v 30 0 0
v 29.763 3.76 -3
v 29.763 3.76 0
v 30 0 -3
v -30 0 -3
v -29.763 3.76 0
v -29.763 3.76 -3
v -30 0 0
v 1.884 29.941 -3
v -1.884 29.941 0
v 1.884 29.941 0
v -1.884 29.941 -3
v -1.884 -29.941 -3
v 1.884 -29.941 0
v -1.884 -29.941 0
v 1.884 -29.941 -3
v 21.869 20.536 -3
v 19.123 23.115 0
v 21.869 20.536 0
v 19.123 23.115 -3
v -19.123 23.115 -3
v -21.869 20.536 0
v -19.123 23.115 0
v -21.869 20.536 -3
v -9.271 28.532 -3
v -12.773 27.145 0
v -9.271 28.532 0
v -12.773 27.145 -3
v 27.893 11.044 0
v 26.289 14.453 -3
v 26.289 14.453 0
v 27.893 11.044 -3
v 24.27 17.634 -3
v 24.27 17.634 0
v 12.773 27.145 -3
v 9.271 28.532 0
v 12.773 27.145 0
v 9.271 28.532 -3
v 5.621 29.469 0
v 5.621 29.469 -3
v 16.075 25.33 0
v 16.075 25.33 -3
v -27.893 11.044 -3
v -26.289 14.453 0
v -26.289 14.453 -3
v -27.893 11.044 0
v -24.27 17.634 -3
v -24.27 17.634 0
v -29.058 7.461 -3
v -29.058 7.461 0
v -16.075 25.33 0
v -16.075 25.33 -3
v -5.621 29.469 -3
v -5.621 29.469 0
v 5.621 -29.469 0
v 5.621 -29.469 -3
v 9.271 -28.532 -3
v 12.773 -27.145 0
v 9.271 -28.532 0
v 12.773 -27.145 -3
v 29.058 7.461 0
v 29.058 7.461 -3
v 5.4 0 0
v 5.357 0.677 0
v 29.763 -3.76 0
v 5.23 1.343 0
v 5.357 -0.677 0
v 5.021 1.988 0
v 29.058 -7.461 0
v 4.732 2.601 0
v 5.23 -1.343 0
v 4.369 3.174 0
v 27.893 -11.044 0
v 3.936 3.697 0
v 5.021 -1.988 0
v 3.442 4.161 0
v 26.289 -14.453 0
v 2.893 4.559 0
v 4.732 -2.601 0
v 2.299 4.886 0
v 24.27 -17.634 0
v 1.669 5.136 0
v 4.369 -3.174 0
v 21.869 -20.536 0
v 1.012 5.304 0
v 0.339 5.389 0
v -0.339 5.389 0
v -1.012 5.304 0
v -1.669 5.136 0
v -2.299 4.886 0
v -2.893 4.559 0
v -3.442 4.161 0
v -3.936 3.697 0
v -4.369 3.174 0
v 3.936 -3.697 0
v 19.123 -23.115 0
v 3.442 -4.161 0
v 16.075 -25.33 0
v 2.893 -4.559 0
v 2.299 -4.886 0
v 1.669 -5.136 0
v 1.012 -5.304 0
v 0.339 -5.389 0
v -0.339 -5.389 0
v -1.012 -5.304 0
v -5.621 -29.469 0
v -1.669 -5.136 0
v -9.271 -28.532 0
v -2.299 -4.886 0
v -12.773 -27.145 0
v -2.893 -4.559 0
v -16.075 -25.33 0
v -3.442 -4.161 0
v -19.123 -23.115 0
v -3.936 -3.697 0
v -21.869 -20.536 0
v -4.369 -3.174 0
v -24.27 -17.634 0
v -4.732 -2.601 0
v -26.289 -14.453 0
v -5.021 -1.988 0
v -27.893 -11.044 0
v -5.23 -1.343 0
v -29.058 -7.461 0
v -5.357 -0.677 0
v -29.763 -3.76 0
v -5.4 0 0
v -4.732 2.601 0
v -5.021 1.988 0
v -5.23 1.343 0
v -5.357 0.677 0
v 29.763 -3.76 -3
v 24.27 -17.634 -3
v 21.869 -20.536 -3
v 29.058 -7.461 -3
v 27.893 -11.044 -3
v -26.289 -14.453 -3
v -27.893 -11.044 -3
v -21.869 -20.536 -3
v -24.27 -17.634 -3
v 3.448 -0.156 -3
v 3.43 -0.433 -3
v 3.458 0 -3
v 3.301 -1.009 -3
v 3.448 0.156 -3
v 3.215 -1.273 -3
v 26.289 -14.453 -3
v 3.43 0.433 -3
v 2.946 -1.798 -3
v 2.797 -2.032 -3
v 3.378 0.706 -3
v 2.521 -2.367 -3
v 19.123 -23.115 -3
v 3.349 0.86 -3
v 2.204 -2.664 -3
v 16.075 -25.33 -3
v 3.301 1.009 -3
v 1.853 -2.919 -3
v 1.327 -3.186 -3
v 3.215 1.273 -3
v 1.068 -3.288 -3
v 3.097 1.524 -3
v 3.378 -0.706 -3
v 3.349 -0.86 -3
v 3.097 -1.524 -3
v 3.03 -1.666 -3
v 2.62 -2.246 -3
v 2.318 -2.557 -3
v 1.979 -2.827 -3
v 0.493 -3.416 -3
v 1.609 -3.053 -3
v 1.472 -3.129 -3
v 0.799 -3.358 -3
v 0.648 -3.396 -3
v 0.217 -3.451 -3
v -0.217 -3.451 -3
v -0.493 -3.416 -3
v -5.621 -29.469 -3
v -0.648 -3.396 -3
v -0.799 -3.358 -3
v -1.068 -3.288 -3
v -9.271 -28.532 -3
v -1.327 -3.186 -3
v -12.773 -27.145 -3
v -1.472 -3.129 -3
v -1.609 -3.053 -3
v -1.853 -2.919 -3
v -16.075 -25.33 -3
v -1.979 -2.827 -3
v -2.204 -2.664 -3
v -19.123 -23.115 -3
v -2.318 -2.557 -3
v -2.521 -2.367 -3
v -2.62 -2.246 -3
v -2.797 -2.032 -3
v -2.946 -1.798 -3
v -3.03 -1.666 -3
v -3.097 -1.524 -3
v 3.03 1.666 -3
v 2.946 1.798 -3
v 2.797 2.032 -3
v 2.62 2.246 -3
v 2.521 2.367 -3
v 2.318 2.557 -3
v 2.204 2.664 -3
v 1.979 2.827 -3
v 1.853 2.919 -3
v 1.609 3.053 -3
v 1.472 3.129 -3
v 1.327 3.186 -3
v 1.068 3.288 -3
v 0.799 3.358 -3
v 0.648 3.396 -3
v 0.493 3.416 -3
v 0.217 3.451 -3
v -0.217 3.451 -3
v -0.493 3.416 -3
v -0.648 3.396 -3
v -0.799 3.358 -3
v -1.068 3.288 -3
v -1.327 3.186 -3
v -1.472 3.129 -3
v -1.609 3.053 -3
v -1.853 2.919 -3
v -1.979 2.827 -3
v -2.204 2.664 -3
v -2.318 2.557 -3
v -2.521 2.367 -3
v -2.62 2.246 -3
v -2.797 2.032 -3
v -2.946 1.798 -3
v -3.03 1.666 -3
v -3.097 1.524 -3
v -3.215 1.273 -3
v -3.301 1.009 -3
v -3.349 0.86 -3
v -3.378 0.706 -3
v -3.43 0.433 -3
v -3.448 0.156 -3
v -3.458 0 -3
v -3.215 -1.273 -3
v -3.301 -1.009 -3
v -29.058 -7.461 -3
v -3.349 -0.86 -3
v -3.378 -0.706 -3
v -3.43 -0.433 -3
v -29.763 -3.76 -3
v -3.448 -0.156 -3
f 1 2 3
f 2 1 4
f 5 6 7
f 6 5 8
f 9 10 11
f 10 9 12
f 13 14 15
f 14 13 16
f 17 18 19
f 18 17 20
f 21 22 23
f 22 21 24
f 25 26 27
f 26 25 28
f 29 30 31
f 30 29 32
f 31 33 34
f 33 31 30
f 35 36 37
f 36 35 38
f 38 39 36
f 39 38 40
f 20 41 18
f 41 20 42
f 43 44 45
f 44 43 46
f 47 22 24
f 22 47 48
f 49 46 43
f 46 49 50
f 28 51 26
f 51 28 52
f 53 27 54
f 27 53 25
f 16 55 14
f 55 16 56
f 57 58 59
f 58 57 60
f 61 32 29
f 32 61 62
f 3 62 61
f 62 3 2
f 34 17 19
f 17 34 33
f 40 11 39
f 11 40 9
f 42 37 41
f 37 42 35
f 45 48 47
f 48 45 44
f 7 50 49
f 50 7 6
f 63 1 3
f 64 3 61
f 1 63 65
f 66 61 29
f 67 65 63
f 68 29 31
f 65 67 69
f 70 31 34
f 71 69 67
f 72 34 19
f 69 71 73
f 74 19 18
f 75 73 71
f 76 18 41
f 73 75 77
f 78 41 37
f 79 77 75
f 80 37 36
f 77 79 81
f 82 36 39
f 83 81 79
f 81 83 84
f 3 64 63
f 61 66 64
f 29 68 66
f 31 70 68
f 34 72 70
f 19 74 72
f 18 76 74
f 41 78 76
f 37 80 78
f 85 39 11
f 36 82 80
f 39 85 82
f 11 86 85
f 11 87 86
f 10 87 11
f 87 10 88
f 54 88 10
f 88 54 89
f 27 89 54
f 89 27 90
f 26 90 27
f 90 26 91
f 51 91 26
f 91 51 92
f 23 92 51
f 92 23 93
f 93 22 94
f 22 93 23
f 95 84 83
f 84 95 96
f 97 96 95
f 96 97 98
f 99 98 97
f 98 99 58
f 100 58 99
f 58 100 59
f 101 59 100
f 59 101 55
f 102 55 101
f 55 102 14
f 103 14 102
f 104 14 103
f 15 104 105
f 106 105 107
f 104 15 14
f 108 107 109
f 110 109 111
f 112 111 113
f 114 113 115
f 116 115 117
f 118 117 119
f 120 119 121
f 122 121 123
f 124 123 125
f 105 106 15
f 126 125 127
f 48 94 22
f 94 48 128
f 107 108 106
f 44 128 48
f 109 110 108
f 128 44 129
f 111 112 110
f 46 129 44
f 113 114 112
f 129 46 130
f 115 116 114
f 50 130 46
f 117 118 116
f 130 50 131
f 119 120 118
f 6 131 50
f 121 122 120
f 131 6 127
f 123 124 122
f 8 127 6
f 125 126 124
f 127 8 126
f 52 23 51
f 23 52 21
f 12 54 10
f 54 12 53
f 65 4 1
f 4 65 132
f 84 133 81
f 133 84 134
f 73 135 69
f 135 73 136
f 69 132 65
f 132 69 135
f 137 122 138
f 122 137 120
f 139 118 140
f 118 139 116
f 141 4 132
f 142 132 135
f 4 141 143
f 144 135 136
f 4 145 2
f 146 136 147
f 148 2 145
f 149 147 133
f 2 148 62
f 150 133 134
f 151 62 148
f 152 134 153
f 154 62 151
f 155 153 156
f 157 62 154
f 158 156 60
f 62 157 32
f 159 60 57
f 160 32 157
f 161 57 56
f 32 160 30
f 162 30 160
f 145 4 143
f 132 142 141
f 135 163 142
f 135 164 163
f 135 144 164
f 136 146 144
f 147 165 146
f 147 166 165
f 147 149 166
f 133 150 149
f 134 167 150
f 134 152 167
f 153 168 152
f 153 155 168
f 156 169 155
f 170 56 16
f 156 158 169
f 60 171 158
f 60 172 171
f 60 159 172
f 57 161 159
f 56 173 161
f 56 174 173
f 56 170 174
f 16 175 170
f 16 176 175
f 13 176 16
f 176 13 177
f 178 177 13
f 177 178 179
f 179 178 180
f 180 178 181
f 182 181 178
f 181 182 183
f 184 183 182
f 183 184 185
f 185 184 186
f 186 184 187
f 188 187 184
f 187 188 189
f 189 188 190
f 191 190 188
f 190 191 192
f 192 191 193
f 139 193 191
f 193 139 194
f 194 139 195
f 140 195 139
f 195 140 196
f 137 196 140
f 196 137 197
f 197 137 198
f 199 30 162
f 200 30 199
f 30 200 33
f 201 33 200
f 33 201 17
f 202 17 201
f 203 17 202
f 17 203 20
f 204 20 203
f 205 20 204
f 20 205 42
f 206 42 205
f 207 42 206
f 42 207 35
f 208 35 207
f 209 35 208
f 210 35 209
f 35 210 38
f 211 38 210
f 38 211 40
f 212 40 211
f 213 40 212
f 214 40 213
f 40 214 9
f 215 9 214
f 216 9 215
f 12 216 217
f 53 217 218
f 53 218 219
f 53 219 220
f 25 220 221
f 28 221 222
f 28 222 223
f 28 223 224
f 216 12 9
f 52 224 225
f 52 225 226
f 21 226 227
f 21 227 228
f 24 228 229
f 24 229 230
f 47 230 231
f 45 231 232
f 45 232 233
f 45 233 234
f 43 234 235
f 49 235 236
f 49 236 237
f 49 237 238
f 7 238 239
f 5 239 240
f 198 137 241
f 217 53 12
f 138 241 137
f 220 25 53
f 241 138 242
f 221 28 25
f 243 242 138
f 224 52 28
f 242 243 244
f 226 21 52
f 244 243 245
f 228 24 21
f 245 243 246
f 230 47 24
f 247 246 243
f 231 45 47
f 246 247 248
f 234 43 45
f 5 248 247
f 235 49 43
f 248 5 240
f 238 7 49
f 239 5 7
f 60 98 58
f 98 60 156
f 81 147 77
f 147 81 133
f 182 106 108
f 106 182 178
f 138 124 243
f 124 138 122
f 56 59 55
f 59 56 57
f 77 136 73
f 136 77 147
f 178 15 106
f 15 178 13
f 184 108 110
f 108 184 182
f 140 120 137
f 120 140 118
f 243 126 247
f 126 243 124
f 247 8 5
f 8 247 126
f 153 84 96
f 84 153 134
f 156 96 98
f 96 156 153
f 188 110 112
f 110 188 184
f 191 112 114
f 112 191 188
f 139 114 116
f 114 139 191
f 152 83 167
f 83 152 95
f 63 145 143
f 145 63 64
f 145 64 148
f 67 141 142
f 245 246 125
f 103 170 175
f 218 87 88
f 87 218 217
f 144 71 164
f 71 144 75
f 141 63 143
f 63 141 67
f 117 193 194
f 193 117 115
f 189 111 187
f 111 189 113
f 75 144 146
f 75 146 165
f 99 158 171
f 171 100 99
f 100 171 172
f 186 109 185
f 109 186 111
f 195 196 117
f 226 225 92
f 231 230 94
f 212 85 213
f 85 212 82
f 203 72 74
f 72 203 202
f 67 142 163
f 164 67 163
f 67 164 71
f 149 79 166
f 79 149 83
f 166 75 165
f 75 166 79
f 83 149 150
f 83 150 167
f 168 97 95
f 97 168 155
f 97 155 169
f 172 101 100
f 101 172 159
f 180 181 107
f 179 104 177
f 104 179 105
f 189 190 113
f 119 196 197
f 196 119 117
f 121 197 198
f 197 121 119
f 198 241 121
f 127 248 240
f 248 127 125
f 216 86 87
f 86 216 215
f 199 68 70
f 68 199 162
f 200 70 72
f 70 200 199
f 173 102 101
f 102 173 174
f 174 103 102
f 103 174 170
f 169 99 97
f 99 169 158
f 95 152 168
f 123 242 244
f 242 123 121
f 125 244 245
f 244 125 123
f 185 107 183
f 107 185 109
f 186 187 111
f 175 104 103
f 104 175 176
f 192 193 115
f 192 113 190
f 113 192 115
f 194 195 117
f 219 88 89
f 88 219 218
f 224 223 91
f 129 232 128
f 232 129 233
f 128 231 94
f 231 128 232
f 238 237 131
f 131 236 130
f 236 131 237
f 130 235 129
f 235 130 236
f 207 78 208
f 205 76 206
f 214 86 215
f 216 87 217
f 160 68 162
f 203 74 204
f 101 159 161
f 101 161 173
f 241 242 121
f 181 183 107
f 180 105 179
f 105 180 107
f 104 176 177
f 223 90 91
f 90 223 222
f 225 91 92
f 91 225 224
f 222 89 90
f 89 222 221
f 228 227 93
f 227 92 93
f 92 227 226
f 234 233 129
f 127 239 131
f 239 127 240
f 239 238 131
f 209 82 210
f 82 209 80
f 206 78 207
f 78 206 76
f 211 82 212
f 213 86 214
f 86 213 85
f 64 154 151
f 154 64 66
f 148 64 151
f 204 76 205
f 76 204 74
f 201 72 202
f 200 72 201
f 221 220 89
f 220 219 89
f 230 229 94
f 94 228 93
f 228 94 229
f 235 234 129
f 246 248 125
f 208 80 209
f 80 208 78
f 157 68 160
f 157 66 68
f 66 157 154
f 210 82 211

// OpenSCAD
$fn = 50;


difference() {
	union() {
		translate(v = [0, 0, -3.0000000000]) {
			cylinder(h = 3, r = 30.0000000000);
		}
		#translate(v = [0, 0, -6.0000000000]) {
			cylinder(h = 6, r = 2.8750000000);
		}
	}
	union() {
		translate(v = [0, 0, 0]) {
			rotate(a = [0, 0, 0]) {
				difference() {
					union() {
						translate(v = [0, 0, -6.0000000000]) {
							cylinder(h = 6, r = 2.6000000000);
						}
						translate(v = [0, 0, -3.9000000000]) {
							cylinder(h = 3.9000000000, r1 = 2.8750000000, r2 = 5.4000000000);
						}
						translate(v = [0, 0, -6.0000000000]) {
							cylinder(h = 6, r = 2.8750000000);
						}
						translate(v = [0, 0, -6.0000000000]) {
							cylinder(h = 6, r = 2.6000000000);
						}
					}
					union();
				}
			}
		}
	}
}
